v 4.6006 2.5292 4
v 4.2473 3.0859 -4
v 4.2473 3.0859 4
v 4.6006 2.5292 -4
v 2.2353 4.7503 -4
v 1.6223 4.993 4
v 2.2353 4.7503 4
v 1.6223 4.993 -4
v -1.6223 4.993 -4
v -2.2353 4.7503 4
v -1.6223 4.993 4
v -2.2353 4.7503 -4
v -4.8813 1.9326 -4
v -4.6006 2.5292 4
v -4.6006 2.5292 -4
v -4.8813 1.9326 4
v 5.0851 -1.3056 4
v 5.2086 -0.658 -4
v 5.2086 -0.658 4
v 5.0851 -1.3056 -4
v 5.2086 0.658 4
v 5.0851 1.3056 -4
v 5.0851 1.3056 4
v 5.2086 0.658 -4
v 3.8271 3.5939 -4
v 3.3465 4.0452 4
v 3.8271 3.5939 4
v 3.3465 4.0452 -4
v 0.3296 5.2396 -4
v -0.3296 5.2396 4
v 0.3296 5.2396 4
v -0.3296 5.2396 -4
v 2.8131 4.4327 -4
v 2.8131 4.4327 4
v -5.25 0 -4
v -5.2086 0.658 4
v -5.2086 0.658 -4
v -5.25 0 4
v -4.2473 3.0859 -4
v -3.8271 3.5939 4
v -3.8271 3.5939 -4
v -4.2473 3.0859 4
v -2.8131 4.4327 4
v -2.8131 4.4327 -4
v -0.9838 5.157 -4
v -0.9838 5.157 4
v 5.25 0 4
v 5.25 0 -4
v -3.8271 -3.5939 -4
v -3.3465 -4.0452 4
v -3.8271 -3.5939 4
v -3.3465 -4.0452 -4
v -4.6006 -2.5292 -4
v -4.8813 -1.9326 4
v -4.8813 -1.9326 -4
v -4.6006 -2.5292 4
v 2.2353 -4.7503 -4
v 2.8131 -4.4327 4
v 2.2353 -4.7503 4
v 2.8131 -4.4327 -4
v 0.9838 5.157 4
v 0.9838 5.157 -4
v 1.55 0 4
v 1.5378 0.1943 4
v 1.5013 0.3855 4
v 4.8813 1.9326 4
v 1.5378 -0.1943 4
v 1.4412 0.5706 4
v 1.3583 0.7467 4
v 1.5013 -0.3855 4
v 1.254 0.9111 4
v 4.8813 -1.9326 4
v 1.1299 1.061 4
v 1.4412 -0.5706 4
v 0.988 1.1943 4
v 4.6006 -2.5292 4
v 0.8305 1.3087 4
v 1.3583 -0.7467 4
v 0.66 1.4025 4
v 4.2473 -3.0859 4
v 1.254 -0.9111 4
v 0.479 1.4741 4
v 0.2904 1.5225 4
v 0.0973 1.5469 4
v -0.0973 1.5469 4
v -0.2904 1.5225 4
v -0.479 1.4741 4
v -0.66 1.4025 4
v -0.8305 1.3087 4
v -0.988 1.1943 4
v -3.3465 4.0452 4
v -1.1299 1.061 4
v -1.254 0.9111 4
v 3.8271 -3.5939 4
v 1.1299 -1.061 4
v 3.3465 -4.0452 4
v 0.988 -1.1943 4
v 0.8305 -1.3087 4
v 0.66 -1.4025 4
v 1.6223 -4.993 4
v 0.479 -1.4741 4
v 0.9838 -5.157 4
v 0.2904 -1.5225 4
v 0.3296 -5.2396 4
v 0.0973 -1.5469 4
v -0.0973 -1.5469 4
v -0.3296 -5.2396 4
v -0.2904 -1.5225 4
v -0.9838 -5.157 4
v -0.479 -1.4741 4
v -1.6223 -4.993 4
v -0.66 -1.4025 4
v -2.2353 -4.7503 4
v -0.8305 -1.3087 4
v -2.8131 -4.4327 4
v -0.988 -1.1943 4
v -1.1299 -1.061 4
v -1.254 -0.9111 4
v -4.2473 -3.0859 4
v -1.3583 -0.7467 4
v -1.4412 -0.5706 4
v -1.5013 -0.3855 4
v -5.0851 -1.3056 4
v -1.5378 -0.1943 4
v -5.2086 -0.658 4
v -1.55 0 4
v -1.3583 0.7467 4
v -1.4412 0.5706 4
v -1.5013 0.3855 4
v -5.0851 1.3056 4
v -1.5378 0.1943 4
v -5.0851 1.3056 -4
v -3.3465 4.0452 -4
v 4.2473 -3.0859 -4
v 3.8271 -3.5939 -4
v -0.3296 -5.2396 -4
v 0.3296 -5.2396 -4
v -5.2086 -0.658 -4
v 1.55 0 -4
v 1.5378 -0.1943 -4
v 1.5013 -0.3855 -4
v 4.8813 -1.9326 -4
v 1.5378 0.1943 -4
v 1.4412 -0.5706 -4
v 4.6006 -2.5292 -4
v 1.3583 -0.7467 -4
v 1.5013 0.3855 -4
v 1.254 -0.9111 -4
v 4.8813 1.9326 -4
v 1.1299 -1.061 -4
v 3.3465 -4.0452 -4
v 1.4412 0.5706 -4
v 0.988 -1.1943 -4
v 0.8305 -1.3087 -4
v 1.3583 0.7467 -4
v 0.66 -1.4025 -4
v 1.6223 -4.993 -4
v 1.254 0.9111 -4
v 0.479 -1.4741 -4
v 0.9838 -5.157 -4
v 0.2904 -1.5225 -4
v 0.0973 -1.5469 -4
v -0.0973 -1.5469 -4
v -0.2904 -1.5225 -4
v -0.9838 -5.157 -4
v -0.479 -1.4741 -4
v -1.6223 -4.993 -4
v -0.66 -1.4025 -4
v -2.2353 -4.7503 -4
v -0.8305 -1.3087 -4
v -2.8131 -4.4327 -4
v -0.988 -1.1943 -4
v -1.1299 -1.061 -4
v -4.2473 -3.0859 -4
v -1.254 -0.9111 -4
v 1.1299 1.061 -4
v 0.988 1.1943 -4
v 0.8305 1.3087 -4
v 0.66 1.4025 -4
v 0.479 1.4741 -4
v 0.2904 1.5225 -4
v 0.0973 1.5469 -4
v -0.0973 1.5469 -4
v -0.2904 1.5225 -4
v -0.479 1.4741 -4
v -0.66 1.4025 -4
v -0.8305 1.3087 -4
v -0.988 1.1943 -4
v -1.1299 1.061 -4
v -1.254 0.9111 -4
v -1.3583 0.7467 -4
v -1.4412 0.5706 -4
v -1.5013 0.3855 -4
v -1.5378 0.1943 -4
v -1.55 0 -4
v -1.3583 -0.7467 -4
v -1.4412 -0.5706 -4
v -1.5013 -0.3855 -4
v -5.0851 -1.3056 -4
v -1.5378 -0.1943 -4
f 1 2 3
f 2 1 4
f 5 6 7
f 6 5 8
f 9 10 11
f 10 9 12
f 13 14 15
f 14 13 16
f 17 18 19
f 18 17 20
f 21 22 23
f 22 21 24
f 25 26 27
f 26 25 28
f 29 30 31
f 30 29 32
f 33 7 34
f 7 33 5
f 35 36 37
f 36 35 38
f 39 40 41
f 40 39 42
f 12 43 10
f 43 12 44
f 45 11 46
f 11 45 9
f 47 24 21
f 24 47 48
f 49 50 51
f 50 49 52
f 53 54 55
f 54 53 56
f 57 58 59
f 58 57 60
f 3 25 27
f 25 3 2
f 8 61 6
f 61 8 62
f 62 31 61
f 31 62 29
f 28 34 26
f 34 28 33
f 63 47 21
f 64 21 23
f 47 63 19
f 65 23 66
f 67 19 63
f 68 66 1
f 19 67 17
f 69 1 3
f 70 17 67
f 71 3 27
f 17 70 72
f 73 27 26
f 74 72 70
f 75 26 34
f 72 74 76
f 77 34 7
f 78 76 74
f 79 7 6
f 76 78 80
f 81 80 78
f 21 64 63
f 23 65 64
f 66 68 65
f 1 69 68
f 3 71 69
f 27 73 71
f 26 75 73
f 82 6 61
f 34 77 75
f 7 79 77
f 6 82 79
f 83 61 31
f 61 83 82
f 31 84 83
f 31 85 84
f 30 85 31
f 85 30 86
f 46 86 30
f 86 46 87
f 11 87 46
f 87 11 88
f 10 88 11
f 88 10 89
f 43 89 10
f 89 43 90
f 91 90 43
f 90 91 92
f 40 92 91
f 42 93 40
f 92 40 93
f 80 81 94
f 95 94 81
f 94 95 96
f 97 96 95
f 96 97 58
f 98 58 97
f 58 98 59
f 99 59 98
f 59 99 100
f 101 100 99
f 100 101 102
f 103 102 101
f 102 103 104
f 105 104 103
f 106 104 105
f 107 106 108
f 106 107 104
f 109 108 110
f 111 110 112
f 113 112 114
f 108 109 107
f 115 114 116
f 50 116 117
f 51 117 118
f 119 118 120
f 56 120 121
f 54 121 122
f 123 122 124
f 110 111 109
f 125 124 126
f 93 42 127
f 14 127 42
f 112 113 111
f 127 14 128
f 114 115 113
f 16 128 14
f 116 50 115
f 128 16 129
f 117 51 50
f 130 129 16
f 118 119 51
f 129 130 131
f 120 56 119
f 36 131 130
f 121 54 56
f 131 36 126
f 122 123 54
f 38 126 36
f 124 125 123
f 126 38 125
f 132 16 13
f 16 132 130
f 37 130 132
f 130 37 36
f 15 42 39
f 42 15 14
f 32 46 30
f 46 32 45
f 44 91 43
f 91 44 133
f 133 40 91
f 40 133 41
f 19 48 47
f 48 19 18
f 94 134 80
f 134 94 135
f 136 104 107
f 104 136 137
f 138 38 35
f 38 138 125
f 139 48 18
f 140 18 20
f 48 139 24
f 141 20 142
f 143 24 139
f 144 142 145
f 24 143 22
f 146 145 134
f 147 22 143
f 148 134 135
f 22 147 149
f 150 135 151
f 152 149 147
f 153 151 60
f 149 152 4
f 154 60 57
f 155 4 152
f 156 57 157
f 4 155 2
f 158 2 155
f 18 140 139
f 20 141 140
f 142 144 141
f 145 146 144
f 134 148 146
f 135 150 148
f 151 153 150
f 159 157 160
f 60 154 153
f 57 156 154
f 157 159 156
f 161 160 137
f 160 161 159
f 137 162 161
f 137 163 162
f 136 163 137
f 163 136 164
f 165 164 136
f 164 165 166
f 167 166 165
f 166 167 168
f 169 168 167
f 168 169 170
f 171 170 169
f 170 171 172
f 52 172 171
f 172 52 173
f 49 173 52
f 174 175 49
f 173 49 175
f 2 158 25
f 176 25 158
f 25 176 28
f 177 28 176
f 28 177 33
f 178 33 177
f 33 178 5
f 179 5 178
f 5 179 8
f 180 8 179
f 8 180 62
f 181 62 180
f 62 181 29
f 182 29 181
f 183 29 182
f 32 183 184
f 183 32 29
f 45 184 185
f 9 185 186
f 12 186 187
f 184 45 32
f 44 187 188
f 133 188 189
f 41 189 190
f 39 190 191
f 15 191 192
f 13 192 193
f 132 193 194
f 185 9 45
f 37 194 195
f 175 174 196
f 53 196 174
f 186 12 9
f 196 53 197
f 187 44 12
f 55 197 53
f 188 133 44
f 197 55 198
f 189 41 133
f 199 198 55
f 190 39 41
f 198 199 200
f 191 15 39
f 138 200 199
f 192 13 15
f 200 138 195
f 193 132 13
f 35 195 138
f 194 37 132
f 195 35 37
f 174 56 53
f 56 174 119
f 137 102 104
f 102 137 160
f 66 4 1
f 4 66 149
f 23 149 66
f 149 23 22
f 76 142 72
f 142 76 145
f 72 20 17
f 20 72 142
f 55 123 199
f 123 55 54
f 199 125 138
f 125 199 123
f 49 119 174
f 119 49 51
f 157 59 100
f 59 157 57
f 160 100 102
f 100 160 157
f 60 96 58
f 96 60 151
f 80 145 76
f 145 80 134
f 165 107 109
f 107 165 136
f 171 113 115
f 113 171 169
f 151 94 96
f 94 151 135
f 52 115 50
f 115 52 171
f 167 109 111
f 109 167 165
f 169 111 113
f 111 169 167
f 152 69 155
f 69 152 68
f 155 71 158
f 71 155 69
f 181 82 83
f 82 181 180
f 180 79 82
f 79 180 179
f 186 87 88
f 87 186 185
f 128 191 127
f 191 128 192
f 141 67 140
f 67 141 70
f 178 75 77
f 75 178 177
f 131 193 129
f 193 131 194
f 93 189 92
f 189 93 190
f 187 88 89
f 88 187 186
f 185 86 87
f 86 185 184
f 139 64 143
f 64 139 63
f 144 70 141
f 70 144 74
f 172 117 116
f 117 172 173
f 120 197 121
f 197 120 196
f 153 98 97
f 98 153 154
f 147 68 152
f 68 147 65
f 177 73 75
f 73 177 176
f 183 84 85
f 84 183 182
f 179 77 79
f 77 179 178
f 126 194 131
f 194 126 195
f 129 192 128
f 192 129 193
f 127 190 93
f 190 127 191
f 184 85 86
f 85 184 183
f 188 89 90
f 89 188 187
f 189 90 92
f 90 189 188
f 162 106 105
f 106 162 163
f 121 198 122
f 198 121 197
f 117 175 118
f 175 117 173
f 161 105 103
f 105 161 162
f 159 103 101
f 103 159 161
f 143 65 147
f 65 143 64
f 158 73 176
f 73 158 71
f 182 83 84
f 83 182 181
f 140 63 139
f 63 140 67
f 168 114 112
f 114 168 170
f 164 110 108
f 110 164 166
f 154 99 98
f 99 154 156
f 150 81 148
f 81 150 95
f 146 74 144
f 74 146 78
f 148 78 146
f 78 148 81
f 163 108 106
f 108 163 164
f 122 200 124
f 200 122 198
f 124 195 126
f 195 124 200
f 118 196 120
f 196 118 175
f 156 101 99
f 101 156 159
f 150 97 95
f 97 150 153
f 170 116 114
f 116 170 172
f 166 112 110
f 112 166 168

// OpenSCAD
$fn = 50;


difference() {
	union() {
		translate(v = [0, 0, -4.0000000000]) {
			cylinder(h = 8, r = 5.2500000000);
		}
	}
	union() {
		translate(v = [0, 0, -100.0000000000]) {
			cylinder(h = 200, r = 1.5500000000);
		}
	}
}
